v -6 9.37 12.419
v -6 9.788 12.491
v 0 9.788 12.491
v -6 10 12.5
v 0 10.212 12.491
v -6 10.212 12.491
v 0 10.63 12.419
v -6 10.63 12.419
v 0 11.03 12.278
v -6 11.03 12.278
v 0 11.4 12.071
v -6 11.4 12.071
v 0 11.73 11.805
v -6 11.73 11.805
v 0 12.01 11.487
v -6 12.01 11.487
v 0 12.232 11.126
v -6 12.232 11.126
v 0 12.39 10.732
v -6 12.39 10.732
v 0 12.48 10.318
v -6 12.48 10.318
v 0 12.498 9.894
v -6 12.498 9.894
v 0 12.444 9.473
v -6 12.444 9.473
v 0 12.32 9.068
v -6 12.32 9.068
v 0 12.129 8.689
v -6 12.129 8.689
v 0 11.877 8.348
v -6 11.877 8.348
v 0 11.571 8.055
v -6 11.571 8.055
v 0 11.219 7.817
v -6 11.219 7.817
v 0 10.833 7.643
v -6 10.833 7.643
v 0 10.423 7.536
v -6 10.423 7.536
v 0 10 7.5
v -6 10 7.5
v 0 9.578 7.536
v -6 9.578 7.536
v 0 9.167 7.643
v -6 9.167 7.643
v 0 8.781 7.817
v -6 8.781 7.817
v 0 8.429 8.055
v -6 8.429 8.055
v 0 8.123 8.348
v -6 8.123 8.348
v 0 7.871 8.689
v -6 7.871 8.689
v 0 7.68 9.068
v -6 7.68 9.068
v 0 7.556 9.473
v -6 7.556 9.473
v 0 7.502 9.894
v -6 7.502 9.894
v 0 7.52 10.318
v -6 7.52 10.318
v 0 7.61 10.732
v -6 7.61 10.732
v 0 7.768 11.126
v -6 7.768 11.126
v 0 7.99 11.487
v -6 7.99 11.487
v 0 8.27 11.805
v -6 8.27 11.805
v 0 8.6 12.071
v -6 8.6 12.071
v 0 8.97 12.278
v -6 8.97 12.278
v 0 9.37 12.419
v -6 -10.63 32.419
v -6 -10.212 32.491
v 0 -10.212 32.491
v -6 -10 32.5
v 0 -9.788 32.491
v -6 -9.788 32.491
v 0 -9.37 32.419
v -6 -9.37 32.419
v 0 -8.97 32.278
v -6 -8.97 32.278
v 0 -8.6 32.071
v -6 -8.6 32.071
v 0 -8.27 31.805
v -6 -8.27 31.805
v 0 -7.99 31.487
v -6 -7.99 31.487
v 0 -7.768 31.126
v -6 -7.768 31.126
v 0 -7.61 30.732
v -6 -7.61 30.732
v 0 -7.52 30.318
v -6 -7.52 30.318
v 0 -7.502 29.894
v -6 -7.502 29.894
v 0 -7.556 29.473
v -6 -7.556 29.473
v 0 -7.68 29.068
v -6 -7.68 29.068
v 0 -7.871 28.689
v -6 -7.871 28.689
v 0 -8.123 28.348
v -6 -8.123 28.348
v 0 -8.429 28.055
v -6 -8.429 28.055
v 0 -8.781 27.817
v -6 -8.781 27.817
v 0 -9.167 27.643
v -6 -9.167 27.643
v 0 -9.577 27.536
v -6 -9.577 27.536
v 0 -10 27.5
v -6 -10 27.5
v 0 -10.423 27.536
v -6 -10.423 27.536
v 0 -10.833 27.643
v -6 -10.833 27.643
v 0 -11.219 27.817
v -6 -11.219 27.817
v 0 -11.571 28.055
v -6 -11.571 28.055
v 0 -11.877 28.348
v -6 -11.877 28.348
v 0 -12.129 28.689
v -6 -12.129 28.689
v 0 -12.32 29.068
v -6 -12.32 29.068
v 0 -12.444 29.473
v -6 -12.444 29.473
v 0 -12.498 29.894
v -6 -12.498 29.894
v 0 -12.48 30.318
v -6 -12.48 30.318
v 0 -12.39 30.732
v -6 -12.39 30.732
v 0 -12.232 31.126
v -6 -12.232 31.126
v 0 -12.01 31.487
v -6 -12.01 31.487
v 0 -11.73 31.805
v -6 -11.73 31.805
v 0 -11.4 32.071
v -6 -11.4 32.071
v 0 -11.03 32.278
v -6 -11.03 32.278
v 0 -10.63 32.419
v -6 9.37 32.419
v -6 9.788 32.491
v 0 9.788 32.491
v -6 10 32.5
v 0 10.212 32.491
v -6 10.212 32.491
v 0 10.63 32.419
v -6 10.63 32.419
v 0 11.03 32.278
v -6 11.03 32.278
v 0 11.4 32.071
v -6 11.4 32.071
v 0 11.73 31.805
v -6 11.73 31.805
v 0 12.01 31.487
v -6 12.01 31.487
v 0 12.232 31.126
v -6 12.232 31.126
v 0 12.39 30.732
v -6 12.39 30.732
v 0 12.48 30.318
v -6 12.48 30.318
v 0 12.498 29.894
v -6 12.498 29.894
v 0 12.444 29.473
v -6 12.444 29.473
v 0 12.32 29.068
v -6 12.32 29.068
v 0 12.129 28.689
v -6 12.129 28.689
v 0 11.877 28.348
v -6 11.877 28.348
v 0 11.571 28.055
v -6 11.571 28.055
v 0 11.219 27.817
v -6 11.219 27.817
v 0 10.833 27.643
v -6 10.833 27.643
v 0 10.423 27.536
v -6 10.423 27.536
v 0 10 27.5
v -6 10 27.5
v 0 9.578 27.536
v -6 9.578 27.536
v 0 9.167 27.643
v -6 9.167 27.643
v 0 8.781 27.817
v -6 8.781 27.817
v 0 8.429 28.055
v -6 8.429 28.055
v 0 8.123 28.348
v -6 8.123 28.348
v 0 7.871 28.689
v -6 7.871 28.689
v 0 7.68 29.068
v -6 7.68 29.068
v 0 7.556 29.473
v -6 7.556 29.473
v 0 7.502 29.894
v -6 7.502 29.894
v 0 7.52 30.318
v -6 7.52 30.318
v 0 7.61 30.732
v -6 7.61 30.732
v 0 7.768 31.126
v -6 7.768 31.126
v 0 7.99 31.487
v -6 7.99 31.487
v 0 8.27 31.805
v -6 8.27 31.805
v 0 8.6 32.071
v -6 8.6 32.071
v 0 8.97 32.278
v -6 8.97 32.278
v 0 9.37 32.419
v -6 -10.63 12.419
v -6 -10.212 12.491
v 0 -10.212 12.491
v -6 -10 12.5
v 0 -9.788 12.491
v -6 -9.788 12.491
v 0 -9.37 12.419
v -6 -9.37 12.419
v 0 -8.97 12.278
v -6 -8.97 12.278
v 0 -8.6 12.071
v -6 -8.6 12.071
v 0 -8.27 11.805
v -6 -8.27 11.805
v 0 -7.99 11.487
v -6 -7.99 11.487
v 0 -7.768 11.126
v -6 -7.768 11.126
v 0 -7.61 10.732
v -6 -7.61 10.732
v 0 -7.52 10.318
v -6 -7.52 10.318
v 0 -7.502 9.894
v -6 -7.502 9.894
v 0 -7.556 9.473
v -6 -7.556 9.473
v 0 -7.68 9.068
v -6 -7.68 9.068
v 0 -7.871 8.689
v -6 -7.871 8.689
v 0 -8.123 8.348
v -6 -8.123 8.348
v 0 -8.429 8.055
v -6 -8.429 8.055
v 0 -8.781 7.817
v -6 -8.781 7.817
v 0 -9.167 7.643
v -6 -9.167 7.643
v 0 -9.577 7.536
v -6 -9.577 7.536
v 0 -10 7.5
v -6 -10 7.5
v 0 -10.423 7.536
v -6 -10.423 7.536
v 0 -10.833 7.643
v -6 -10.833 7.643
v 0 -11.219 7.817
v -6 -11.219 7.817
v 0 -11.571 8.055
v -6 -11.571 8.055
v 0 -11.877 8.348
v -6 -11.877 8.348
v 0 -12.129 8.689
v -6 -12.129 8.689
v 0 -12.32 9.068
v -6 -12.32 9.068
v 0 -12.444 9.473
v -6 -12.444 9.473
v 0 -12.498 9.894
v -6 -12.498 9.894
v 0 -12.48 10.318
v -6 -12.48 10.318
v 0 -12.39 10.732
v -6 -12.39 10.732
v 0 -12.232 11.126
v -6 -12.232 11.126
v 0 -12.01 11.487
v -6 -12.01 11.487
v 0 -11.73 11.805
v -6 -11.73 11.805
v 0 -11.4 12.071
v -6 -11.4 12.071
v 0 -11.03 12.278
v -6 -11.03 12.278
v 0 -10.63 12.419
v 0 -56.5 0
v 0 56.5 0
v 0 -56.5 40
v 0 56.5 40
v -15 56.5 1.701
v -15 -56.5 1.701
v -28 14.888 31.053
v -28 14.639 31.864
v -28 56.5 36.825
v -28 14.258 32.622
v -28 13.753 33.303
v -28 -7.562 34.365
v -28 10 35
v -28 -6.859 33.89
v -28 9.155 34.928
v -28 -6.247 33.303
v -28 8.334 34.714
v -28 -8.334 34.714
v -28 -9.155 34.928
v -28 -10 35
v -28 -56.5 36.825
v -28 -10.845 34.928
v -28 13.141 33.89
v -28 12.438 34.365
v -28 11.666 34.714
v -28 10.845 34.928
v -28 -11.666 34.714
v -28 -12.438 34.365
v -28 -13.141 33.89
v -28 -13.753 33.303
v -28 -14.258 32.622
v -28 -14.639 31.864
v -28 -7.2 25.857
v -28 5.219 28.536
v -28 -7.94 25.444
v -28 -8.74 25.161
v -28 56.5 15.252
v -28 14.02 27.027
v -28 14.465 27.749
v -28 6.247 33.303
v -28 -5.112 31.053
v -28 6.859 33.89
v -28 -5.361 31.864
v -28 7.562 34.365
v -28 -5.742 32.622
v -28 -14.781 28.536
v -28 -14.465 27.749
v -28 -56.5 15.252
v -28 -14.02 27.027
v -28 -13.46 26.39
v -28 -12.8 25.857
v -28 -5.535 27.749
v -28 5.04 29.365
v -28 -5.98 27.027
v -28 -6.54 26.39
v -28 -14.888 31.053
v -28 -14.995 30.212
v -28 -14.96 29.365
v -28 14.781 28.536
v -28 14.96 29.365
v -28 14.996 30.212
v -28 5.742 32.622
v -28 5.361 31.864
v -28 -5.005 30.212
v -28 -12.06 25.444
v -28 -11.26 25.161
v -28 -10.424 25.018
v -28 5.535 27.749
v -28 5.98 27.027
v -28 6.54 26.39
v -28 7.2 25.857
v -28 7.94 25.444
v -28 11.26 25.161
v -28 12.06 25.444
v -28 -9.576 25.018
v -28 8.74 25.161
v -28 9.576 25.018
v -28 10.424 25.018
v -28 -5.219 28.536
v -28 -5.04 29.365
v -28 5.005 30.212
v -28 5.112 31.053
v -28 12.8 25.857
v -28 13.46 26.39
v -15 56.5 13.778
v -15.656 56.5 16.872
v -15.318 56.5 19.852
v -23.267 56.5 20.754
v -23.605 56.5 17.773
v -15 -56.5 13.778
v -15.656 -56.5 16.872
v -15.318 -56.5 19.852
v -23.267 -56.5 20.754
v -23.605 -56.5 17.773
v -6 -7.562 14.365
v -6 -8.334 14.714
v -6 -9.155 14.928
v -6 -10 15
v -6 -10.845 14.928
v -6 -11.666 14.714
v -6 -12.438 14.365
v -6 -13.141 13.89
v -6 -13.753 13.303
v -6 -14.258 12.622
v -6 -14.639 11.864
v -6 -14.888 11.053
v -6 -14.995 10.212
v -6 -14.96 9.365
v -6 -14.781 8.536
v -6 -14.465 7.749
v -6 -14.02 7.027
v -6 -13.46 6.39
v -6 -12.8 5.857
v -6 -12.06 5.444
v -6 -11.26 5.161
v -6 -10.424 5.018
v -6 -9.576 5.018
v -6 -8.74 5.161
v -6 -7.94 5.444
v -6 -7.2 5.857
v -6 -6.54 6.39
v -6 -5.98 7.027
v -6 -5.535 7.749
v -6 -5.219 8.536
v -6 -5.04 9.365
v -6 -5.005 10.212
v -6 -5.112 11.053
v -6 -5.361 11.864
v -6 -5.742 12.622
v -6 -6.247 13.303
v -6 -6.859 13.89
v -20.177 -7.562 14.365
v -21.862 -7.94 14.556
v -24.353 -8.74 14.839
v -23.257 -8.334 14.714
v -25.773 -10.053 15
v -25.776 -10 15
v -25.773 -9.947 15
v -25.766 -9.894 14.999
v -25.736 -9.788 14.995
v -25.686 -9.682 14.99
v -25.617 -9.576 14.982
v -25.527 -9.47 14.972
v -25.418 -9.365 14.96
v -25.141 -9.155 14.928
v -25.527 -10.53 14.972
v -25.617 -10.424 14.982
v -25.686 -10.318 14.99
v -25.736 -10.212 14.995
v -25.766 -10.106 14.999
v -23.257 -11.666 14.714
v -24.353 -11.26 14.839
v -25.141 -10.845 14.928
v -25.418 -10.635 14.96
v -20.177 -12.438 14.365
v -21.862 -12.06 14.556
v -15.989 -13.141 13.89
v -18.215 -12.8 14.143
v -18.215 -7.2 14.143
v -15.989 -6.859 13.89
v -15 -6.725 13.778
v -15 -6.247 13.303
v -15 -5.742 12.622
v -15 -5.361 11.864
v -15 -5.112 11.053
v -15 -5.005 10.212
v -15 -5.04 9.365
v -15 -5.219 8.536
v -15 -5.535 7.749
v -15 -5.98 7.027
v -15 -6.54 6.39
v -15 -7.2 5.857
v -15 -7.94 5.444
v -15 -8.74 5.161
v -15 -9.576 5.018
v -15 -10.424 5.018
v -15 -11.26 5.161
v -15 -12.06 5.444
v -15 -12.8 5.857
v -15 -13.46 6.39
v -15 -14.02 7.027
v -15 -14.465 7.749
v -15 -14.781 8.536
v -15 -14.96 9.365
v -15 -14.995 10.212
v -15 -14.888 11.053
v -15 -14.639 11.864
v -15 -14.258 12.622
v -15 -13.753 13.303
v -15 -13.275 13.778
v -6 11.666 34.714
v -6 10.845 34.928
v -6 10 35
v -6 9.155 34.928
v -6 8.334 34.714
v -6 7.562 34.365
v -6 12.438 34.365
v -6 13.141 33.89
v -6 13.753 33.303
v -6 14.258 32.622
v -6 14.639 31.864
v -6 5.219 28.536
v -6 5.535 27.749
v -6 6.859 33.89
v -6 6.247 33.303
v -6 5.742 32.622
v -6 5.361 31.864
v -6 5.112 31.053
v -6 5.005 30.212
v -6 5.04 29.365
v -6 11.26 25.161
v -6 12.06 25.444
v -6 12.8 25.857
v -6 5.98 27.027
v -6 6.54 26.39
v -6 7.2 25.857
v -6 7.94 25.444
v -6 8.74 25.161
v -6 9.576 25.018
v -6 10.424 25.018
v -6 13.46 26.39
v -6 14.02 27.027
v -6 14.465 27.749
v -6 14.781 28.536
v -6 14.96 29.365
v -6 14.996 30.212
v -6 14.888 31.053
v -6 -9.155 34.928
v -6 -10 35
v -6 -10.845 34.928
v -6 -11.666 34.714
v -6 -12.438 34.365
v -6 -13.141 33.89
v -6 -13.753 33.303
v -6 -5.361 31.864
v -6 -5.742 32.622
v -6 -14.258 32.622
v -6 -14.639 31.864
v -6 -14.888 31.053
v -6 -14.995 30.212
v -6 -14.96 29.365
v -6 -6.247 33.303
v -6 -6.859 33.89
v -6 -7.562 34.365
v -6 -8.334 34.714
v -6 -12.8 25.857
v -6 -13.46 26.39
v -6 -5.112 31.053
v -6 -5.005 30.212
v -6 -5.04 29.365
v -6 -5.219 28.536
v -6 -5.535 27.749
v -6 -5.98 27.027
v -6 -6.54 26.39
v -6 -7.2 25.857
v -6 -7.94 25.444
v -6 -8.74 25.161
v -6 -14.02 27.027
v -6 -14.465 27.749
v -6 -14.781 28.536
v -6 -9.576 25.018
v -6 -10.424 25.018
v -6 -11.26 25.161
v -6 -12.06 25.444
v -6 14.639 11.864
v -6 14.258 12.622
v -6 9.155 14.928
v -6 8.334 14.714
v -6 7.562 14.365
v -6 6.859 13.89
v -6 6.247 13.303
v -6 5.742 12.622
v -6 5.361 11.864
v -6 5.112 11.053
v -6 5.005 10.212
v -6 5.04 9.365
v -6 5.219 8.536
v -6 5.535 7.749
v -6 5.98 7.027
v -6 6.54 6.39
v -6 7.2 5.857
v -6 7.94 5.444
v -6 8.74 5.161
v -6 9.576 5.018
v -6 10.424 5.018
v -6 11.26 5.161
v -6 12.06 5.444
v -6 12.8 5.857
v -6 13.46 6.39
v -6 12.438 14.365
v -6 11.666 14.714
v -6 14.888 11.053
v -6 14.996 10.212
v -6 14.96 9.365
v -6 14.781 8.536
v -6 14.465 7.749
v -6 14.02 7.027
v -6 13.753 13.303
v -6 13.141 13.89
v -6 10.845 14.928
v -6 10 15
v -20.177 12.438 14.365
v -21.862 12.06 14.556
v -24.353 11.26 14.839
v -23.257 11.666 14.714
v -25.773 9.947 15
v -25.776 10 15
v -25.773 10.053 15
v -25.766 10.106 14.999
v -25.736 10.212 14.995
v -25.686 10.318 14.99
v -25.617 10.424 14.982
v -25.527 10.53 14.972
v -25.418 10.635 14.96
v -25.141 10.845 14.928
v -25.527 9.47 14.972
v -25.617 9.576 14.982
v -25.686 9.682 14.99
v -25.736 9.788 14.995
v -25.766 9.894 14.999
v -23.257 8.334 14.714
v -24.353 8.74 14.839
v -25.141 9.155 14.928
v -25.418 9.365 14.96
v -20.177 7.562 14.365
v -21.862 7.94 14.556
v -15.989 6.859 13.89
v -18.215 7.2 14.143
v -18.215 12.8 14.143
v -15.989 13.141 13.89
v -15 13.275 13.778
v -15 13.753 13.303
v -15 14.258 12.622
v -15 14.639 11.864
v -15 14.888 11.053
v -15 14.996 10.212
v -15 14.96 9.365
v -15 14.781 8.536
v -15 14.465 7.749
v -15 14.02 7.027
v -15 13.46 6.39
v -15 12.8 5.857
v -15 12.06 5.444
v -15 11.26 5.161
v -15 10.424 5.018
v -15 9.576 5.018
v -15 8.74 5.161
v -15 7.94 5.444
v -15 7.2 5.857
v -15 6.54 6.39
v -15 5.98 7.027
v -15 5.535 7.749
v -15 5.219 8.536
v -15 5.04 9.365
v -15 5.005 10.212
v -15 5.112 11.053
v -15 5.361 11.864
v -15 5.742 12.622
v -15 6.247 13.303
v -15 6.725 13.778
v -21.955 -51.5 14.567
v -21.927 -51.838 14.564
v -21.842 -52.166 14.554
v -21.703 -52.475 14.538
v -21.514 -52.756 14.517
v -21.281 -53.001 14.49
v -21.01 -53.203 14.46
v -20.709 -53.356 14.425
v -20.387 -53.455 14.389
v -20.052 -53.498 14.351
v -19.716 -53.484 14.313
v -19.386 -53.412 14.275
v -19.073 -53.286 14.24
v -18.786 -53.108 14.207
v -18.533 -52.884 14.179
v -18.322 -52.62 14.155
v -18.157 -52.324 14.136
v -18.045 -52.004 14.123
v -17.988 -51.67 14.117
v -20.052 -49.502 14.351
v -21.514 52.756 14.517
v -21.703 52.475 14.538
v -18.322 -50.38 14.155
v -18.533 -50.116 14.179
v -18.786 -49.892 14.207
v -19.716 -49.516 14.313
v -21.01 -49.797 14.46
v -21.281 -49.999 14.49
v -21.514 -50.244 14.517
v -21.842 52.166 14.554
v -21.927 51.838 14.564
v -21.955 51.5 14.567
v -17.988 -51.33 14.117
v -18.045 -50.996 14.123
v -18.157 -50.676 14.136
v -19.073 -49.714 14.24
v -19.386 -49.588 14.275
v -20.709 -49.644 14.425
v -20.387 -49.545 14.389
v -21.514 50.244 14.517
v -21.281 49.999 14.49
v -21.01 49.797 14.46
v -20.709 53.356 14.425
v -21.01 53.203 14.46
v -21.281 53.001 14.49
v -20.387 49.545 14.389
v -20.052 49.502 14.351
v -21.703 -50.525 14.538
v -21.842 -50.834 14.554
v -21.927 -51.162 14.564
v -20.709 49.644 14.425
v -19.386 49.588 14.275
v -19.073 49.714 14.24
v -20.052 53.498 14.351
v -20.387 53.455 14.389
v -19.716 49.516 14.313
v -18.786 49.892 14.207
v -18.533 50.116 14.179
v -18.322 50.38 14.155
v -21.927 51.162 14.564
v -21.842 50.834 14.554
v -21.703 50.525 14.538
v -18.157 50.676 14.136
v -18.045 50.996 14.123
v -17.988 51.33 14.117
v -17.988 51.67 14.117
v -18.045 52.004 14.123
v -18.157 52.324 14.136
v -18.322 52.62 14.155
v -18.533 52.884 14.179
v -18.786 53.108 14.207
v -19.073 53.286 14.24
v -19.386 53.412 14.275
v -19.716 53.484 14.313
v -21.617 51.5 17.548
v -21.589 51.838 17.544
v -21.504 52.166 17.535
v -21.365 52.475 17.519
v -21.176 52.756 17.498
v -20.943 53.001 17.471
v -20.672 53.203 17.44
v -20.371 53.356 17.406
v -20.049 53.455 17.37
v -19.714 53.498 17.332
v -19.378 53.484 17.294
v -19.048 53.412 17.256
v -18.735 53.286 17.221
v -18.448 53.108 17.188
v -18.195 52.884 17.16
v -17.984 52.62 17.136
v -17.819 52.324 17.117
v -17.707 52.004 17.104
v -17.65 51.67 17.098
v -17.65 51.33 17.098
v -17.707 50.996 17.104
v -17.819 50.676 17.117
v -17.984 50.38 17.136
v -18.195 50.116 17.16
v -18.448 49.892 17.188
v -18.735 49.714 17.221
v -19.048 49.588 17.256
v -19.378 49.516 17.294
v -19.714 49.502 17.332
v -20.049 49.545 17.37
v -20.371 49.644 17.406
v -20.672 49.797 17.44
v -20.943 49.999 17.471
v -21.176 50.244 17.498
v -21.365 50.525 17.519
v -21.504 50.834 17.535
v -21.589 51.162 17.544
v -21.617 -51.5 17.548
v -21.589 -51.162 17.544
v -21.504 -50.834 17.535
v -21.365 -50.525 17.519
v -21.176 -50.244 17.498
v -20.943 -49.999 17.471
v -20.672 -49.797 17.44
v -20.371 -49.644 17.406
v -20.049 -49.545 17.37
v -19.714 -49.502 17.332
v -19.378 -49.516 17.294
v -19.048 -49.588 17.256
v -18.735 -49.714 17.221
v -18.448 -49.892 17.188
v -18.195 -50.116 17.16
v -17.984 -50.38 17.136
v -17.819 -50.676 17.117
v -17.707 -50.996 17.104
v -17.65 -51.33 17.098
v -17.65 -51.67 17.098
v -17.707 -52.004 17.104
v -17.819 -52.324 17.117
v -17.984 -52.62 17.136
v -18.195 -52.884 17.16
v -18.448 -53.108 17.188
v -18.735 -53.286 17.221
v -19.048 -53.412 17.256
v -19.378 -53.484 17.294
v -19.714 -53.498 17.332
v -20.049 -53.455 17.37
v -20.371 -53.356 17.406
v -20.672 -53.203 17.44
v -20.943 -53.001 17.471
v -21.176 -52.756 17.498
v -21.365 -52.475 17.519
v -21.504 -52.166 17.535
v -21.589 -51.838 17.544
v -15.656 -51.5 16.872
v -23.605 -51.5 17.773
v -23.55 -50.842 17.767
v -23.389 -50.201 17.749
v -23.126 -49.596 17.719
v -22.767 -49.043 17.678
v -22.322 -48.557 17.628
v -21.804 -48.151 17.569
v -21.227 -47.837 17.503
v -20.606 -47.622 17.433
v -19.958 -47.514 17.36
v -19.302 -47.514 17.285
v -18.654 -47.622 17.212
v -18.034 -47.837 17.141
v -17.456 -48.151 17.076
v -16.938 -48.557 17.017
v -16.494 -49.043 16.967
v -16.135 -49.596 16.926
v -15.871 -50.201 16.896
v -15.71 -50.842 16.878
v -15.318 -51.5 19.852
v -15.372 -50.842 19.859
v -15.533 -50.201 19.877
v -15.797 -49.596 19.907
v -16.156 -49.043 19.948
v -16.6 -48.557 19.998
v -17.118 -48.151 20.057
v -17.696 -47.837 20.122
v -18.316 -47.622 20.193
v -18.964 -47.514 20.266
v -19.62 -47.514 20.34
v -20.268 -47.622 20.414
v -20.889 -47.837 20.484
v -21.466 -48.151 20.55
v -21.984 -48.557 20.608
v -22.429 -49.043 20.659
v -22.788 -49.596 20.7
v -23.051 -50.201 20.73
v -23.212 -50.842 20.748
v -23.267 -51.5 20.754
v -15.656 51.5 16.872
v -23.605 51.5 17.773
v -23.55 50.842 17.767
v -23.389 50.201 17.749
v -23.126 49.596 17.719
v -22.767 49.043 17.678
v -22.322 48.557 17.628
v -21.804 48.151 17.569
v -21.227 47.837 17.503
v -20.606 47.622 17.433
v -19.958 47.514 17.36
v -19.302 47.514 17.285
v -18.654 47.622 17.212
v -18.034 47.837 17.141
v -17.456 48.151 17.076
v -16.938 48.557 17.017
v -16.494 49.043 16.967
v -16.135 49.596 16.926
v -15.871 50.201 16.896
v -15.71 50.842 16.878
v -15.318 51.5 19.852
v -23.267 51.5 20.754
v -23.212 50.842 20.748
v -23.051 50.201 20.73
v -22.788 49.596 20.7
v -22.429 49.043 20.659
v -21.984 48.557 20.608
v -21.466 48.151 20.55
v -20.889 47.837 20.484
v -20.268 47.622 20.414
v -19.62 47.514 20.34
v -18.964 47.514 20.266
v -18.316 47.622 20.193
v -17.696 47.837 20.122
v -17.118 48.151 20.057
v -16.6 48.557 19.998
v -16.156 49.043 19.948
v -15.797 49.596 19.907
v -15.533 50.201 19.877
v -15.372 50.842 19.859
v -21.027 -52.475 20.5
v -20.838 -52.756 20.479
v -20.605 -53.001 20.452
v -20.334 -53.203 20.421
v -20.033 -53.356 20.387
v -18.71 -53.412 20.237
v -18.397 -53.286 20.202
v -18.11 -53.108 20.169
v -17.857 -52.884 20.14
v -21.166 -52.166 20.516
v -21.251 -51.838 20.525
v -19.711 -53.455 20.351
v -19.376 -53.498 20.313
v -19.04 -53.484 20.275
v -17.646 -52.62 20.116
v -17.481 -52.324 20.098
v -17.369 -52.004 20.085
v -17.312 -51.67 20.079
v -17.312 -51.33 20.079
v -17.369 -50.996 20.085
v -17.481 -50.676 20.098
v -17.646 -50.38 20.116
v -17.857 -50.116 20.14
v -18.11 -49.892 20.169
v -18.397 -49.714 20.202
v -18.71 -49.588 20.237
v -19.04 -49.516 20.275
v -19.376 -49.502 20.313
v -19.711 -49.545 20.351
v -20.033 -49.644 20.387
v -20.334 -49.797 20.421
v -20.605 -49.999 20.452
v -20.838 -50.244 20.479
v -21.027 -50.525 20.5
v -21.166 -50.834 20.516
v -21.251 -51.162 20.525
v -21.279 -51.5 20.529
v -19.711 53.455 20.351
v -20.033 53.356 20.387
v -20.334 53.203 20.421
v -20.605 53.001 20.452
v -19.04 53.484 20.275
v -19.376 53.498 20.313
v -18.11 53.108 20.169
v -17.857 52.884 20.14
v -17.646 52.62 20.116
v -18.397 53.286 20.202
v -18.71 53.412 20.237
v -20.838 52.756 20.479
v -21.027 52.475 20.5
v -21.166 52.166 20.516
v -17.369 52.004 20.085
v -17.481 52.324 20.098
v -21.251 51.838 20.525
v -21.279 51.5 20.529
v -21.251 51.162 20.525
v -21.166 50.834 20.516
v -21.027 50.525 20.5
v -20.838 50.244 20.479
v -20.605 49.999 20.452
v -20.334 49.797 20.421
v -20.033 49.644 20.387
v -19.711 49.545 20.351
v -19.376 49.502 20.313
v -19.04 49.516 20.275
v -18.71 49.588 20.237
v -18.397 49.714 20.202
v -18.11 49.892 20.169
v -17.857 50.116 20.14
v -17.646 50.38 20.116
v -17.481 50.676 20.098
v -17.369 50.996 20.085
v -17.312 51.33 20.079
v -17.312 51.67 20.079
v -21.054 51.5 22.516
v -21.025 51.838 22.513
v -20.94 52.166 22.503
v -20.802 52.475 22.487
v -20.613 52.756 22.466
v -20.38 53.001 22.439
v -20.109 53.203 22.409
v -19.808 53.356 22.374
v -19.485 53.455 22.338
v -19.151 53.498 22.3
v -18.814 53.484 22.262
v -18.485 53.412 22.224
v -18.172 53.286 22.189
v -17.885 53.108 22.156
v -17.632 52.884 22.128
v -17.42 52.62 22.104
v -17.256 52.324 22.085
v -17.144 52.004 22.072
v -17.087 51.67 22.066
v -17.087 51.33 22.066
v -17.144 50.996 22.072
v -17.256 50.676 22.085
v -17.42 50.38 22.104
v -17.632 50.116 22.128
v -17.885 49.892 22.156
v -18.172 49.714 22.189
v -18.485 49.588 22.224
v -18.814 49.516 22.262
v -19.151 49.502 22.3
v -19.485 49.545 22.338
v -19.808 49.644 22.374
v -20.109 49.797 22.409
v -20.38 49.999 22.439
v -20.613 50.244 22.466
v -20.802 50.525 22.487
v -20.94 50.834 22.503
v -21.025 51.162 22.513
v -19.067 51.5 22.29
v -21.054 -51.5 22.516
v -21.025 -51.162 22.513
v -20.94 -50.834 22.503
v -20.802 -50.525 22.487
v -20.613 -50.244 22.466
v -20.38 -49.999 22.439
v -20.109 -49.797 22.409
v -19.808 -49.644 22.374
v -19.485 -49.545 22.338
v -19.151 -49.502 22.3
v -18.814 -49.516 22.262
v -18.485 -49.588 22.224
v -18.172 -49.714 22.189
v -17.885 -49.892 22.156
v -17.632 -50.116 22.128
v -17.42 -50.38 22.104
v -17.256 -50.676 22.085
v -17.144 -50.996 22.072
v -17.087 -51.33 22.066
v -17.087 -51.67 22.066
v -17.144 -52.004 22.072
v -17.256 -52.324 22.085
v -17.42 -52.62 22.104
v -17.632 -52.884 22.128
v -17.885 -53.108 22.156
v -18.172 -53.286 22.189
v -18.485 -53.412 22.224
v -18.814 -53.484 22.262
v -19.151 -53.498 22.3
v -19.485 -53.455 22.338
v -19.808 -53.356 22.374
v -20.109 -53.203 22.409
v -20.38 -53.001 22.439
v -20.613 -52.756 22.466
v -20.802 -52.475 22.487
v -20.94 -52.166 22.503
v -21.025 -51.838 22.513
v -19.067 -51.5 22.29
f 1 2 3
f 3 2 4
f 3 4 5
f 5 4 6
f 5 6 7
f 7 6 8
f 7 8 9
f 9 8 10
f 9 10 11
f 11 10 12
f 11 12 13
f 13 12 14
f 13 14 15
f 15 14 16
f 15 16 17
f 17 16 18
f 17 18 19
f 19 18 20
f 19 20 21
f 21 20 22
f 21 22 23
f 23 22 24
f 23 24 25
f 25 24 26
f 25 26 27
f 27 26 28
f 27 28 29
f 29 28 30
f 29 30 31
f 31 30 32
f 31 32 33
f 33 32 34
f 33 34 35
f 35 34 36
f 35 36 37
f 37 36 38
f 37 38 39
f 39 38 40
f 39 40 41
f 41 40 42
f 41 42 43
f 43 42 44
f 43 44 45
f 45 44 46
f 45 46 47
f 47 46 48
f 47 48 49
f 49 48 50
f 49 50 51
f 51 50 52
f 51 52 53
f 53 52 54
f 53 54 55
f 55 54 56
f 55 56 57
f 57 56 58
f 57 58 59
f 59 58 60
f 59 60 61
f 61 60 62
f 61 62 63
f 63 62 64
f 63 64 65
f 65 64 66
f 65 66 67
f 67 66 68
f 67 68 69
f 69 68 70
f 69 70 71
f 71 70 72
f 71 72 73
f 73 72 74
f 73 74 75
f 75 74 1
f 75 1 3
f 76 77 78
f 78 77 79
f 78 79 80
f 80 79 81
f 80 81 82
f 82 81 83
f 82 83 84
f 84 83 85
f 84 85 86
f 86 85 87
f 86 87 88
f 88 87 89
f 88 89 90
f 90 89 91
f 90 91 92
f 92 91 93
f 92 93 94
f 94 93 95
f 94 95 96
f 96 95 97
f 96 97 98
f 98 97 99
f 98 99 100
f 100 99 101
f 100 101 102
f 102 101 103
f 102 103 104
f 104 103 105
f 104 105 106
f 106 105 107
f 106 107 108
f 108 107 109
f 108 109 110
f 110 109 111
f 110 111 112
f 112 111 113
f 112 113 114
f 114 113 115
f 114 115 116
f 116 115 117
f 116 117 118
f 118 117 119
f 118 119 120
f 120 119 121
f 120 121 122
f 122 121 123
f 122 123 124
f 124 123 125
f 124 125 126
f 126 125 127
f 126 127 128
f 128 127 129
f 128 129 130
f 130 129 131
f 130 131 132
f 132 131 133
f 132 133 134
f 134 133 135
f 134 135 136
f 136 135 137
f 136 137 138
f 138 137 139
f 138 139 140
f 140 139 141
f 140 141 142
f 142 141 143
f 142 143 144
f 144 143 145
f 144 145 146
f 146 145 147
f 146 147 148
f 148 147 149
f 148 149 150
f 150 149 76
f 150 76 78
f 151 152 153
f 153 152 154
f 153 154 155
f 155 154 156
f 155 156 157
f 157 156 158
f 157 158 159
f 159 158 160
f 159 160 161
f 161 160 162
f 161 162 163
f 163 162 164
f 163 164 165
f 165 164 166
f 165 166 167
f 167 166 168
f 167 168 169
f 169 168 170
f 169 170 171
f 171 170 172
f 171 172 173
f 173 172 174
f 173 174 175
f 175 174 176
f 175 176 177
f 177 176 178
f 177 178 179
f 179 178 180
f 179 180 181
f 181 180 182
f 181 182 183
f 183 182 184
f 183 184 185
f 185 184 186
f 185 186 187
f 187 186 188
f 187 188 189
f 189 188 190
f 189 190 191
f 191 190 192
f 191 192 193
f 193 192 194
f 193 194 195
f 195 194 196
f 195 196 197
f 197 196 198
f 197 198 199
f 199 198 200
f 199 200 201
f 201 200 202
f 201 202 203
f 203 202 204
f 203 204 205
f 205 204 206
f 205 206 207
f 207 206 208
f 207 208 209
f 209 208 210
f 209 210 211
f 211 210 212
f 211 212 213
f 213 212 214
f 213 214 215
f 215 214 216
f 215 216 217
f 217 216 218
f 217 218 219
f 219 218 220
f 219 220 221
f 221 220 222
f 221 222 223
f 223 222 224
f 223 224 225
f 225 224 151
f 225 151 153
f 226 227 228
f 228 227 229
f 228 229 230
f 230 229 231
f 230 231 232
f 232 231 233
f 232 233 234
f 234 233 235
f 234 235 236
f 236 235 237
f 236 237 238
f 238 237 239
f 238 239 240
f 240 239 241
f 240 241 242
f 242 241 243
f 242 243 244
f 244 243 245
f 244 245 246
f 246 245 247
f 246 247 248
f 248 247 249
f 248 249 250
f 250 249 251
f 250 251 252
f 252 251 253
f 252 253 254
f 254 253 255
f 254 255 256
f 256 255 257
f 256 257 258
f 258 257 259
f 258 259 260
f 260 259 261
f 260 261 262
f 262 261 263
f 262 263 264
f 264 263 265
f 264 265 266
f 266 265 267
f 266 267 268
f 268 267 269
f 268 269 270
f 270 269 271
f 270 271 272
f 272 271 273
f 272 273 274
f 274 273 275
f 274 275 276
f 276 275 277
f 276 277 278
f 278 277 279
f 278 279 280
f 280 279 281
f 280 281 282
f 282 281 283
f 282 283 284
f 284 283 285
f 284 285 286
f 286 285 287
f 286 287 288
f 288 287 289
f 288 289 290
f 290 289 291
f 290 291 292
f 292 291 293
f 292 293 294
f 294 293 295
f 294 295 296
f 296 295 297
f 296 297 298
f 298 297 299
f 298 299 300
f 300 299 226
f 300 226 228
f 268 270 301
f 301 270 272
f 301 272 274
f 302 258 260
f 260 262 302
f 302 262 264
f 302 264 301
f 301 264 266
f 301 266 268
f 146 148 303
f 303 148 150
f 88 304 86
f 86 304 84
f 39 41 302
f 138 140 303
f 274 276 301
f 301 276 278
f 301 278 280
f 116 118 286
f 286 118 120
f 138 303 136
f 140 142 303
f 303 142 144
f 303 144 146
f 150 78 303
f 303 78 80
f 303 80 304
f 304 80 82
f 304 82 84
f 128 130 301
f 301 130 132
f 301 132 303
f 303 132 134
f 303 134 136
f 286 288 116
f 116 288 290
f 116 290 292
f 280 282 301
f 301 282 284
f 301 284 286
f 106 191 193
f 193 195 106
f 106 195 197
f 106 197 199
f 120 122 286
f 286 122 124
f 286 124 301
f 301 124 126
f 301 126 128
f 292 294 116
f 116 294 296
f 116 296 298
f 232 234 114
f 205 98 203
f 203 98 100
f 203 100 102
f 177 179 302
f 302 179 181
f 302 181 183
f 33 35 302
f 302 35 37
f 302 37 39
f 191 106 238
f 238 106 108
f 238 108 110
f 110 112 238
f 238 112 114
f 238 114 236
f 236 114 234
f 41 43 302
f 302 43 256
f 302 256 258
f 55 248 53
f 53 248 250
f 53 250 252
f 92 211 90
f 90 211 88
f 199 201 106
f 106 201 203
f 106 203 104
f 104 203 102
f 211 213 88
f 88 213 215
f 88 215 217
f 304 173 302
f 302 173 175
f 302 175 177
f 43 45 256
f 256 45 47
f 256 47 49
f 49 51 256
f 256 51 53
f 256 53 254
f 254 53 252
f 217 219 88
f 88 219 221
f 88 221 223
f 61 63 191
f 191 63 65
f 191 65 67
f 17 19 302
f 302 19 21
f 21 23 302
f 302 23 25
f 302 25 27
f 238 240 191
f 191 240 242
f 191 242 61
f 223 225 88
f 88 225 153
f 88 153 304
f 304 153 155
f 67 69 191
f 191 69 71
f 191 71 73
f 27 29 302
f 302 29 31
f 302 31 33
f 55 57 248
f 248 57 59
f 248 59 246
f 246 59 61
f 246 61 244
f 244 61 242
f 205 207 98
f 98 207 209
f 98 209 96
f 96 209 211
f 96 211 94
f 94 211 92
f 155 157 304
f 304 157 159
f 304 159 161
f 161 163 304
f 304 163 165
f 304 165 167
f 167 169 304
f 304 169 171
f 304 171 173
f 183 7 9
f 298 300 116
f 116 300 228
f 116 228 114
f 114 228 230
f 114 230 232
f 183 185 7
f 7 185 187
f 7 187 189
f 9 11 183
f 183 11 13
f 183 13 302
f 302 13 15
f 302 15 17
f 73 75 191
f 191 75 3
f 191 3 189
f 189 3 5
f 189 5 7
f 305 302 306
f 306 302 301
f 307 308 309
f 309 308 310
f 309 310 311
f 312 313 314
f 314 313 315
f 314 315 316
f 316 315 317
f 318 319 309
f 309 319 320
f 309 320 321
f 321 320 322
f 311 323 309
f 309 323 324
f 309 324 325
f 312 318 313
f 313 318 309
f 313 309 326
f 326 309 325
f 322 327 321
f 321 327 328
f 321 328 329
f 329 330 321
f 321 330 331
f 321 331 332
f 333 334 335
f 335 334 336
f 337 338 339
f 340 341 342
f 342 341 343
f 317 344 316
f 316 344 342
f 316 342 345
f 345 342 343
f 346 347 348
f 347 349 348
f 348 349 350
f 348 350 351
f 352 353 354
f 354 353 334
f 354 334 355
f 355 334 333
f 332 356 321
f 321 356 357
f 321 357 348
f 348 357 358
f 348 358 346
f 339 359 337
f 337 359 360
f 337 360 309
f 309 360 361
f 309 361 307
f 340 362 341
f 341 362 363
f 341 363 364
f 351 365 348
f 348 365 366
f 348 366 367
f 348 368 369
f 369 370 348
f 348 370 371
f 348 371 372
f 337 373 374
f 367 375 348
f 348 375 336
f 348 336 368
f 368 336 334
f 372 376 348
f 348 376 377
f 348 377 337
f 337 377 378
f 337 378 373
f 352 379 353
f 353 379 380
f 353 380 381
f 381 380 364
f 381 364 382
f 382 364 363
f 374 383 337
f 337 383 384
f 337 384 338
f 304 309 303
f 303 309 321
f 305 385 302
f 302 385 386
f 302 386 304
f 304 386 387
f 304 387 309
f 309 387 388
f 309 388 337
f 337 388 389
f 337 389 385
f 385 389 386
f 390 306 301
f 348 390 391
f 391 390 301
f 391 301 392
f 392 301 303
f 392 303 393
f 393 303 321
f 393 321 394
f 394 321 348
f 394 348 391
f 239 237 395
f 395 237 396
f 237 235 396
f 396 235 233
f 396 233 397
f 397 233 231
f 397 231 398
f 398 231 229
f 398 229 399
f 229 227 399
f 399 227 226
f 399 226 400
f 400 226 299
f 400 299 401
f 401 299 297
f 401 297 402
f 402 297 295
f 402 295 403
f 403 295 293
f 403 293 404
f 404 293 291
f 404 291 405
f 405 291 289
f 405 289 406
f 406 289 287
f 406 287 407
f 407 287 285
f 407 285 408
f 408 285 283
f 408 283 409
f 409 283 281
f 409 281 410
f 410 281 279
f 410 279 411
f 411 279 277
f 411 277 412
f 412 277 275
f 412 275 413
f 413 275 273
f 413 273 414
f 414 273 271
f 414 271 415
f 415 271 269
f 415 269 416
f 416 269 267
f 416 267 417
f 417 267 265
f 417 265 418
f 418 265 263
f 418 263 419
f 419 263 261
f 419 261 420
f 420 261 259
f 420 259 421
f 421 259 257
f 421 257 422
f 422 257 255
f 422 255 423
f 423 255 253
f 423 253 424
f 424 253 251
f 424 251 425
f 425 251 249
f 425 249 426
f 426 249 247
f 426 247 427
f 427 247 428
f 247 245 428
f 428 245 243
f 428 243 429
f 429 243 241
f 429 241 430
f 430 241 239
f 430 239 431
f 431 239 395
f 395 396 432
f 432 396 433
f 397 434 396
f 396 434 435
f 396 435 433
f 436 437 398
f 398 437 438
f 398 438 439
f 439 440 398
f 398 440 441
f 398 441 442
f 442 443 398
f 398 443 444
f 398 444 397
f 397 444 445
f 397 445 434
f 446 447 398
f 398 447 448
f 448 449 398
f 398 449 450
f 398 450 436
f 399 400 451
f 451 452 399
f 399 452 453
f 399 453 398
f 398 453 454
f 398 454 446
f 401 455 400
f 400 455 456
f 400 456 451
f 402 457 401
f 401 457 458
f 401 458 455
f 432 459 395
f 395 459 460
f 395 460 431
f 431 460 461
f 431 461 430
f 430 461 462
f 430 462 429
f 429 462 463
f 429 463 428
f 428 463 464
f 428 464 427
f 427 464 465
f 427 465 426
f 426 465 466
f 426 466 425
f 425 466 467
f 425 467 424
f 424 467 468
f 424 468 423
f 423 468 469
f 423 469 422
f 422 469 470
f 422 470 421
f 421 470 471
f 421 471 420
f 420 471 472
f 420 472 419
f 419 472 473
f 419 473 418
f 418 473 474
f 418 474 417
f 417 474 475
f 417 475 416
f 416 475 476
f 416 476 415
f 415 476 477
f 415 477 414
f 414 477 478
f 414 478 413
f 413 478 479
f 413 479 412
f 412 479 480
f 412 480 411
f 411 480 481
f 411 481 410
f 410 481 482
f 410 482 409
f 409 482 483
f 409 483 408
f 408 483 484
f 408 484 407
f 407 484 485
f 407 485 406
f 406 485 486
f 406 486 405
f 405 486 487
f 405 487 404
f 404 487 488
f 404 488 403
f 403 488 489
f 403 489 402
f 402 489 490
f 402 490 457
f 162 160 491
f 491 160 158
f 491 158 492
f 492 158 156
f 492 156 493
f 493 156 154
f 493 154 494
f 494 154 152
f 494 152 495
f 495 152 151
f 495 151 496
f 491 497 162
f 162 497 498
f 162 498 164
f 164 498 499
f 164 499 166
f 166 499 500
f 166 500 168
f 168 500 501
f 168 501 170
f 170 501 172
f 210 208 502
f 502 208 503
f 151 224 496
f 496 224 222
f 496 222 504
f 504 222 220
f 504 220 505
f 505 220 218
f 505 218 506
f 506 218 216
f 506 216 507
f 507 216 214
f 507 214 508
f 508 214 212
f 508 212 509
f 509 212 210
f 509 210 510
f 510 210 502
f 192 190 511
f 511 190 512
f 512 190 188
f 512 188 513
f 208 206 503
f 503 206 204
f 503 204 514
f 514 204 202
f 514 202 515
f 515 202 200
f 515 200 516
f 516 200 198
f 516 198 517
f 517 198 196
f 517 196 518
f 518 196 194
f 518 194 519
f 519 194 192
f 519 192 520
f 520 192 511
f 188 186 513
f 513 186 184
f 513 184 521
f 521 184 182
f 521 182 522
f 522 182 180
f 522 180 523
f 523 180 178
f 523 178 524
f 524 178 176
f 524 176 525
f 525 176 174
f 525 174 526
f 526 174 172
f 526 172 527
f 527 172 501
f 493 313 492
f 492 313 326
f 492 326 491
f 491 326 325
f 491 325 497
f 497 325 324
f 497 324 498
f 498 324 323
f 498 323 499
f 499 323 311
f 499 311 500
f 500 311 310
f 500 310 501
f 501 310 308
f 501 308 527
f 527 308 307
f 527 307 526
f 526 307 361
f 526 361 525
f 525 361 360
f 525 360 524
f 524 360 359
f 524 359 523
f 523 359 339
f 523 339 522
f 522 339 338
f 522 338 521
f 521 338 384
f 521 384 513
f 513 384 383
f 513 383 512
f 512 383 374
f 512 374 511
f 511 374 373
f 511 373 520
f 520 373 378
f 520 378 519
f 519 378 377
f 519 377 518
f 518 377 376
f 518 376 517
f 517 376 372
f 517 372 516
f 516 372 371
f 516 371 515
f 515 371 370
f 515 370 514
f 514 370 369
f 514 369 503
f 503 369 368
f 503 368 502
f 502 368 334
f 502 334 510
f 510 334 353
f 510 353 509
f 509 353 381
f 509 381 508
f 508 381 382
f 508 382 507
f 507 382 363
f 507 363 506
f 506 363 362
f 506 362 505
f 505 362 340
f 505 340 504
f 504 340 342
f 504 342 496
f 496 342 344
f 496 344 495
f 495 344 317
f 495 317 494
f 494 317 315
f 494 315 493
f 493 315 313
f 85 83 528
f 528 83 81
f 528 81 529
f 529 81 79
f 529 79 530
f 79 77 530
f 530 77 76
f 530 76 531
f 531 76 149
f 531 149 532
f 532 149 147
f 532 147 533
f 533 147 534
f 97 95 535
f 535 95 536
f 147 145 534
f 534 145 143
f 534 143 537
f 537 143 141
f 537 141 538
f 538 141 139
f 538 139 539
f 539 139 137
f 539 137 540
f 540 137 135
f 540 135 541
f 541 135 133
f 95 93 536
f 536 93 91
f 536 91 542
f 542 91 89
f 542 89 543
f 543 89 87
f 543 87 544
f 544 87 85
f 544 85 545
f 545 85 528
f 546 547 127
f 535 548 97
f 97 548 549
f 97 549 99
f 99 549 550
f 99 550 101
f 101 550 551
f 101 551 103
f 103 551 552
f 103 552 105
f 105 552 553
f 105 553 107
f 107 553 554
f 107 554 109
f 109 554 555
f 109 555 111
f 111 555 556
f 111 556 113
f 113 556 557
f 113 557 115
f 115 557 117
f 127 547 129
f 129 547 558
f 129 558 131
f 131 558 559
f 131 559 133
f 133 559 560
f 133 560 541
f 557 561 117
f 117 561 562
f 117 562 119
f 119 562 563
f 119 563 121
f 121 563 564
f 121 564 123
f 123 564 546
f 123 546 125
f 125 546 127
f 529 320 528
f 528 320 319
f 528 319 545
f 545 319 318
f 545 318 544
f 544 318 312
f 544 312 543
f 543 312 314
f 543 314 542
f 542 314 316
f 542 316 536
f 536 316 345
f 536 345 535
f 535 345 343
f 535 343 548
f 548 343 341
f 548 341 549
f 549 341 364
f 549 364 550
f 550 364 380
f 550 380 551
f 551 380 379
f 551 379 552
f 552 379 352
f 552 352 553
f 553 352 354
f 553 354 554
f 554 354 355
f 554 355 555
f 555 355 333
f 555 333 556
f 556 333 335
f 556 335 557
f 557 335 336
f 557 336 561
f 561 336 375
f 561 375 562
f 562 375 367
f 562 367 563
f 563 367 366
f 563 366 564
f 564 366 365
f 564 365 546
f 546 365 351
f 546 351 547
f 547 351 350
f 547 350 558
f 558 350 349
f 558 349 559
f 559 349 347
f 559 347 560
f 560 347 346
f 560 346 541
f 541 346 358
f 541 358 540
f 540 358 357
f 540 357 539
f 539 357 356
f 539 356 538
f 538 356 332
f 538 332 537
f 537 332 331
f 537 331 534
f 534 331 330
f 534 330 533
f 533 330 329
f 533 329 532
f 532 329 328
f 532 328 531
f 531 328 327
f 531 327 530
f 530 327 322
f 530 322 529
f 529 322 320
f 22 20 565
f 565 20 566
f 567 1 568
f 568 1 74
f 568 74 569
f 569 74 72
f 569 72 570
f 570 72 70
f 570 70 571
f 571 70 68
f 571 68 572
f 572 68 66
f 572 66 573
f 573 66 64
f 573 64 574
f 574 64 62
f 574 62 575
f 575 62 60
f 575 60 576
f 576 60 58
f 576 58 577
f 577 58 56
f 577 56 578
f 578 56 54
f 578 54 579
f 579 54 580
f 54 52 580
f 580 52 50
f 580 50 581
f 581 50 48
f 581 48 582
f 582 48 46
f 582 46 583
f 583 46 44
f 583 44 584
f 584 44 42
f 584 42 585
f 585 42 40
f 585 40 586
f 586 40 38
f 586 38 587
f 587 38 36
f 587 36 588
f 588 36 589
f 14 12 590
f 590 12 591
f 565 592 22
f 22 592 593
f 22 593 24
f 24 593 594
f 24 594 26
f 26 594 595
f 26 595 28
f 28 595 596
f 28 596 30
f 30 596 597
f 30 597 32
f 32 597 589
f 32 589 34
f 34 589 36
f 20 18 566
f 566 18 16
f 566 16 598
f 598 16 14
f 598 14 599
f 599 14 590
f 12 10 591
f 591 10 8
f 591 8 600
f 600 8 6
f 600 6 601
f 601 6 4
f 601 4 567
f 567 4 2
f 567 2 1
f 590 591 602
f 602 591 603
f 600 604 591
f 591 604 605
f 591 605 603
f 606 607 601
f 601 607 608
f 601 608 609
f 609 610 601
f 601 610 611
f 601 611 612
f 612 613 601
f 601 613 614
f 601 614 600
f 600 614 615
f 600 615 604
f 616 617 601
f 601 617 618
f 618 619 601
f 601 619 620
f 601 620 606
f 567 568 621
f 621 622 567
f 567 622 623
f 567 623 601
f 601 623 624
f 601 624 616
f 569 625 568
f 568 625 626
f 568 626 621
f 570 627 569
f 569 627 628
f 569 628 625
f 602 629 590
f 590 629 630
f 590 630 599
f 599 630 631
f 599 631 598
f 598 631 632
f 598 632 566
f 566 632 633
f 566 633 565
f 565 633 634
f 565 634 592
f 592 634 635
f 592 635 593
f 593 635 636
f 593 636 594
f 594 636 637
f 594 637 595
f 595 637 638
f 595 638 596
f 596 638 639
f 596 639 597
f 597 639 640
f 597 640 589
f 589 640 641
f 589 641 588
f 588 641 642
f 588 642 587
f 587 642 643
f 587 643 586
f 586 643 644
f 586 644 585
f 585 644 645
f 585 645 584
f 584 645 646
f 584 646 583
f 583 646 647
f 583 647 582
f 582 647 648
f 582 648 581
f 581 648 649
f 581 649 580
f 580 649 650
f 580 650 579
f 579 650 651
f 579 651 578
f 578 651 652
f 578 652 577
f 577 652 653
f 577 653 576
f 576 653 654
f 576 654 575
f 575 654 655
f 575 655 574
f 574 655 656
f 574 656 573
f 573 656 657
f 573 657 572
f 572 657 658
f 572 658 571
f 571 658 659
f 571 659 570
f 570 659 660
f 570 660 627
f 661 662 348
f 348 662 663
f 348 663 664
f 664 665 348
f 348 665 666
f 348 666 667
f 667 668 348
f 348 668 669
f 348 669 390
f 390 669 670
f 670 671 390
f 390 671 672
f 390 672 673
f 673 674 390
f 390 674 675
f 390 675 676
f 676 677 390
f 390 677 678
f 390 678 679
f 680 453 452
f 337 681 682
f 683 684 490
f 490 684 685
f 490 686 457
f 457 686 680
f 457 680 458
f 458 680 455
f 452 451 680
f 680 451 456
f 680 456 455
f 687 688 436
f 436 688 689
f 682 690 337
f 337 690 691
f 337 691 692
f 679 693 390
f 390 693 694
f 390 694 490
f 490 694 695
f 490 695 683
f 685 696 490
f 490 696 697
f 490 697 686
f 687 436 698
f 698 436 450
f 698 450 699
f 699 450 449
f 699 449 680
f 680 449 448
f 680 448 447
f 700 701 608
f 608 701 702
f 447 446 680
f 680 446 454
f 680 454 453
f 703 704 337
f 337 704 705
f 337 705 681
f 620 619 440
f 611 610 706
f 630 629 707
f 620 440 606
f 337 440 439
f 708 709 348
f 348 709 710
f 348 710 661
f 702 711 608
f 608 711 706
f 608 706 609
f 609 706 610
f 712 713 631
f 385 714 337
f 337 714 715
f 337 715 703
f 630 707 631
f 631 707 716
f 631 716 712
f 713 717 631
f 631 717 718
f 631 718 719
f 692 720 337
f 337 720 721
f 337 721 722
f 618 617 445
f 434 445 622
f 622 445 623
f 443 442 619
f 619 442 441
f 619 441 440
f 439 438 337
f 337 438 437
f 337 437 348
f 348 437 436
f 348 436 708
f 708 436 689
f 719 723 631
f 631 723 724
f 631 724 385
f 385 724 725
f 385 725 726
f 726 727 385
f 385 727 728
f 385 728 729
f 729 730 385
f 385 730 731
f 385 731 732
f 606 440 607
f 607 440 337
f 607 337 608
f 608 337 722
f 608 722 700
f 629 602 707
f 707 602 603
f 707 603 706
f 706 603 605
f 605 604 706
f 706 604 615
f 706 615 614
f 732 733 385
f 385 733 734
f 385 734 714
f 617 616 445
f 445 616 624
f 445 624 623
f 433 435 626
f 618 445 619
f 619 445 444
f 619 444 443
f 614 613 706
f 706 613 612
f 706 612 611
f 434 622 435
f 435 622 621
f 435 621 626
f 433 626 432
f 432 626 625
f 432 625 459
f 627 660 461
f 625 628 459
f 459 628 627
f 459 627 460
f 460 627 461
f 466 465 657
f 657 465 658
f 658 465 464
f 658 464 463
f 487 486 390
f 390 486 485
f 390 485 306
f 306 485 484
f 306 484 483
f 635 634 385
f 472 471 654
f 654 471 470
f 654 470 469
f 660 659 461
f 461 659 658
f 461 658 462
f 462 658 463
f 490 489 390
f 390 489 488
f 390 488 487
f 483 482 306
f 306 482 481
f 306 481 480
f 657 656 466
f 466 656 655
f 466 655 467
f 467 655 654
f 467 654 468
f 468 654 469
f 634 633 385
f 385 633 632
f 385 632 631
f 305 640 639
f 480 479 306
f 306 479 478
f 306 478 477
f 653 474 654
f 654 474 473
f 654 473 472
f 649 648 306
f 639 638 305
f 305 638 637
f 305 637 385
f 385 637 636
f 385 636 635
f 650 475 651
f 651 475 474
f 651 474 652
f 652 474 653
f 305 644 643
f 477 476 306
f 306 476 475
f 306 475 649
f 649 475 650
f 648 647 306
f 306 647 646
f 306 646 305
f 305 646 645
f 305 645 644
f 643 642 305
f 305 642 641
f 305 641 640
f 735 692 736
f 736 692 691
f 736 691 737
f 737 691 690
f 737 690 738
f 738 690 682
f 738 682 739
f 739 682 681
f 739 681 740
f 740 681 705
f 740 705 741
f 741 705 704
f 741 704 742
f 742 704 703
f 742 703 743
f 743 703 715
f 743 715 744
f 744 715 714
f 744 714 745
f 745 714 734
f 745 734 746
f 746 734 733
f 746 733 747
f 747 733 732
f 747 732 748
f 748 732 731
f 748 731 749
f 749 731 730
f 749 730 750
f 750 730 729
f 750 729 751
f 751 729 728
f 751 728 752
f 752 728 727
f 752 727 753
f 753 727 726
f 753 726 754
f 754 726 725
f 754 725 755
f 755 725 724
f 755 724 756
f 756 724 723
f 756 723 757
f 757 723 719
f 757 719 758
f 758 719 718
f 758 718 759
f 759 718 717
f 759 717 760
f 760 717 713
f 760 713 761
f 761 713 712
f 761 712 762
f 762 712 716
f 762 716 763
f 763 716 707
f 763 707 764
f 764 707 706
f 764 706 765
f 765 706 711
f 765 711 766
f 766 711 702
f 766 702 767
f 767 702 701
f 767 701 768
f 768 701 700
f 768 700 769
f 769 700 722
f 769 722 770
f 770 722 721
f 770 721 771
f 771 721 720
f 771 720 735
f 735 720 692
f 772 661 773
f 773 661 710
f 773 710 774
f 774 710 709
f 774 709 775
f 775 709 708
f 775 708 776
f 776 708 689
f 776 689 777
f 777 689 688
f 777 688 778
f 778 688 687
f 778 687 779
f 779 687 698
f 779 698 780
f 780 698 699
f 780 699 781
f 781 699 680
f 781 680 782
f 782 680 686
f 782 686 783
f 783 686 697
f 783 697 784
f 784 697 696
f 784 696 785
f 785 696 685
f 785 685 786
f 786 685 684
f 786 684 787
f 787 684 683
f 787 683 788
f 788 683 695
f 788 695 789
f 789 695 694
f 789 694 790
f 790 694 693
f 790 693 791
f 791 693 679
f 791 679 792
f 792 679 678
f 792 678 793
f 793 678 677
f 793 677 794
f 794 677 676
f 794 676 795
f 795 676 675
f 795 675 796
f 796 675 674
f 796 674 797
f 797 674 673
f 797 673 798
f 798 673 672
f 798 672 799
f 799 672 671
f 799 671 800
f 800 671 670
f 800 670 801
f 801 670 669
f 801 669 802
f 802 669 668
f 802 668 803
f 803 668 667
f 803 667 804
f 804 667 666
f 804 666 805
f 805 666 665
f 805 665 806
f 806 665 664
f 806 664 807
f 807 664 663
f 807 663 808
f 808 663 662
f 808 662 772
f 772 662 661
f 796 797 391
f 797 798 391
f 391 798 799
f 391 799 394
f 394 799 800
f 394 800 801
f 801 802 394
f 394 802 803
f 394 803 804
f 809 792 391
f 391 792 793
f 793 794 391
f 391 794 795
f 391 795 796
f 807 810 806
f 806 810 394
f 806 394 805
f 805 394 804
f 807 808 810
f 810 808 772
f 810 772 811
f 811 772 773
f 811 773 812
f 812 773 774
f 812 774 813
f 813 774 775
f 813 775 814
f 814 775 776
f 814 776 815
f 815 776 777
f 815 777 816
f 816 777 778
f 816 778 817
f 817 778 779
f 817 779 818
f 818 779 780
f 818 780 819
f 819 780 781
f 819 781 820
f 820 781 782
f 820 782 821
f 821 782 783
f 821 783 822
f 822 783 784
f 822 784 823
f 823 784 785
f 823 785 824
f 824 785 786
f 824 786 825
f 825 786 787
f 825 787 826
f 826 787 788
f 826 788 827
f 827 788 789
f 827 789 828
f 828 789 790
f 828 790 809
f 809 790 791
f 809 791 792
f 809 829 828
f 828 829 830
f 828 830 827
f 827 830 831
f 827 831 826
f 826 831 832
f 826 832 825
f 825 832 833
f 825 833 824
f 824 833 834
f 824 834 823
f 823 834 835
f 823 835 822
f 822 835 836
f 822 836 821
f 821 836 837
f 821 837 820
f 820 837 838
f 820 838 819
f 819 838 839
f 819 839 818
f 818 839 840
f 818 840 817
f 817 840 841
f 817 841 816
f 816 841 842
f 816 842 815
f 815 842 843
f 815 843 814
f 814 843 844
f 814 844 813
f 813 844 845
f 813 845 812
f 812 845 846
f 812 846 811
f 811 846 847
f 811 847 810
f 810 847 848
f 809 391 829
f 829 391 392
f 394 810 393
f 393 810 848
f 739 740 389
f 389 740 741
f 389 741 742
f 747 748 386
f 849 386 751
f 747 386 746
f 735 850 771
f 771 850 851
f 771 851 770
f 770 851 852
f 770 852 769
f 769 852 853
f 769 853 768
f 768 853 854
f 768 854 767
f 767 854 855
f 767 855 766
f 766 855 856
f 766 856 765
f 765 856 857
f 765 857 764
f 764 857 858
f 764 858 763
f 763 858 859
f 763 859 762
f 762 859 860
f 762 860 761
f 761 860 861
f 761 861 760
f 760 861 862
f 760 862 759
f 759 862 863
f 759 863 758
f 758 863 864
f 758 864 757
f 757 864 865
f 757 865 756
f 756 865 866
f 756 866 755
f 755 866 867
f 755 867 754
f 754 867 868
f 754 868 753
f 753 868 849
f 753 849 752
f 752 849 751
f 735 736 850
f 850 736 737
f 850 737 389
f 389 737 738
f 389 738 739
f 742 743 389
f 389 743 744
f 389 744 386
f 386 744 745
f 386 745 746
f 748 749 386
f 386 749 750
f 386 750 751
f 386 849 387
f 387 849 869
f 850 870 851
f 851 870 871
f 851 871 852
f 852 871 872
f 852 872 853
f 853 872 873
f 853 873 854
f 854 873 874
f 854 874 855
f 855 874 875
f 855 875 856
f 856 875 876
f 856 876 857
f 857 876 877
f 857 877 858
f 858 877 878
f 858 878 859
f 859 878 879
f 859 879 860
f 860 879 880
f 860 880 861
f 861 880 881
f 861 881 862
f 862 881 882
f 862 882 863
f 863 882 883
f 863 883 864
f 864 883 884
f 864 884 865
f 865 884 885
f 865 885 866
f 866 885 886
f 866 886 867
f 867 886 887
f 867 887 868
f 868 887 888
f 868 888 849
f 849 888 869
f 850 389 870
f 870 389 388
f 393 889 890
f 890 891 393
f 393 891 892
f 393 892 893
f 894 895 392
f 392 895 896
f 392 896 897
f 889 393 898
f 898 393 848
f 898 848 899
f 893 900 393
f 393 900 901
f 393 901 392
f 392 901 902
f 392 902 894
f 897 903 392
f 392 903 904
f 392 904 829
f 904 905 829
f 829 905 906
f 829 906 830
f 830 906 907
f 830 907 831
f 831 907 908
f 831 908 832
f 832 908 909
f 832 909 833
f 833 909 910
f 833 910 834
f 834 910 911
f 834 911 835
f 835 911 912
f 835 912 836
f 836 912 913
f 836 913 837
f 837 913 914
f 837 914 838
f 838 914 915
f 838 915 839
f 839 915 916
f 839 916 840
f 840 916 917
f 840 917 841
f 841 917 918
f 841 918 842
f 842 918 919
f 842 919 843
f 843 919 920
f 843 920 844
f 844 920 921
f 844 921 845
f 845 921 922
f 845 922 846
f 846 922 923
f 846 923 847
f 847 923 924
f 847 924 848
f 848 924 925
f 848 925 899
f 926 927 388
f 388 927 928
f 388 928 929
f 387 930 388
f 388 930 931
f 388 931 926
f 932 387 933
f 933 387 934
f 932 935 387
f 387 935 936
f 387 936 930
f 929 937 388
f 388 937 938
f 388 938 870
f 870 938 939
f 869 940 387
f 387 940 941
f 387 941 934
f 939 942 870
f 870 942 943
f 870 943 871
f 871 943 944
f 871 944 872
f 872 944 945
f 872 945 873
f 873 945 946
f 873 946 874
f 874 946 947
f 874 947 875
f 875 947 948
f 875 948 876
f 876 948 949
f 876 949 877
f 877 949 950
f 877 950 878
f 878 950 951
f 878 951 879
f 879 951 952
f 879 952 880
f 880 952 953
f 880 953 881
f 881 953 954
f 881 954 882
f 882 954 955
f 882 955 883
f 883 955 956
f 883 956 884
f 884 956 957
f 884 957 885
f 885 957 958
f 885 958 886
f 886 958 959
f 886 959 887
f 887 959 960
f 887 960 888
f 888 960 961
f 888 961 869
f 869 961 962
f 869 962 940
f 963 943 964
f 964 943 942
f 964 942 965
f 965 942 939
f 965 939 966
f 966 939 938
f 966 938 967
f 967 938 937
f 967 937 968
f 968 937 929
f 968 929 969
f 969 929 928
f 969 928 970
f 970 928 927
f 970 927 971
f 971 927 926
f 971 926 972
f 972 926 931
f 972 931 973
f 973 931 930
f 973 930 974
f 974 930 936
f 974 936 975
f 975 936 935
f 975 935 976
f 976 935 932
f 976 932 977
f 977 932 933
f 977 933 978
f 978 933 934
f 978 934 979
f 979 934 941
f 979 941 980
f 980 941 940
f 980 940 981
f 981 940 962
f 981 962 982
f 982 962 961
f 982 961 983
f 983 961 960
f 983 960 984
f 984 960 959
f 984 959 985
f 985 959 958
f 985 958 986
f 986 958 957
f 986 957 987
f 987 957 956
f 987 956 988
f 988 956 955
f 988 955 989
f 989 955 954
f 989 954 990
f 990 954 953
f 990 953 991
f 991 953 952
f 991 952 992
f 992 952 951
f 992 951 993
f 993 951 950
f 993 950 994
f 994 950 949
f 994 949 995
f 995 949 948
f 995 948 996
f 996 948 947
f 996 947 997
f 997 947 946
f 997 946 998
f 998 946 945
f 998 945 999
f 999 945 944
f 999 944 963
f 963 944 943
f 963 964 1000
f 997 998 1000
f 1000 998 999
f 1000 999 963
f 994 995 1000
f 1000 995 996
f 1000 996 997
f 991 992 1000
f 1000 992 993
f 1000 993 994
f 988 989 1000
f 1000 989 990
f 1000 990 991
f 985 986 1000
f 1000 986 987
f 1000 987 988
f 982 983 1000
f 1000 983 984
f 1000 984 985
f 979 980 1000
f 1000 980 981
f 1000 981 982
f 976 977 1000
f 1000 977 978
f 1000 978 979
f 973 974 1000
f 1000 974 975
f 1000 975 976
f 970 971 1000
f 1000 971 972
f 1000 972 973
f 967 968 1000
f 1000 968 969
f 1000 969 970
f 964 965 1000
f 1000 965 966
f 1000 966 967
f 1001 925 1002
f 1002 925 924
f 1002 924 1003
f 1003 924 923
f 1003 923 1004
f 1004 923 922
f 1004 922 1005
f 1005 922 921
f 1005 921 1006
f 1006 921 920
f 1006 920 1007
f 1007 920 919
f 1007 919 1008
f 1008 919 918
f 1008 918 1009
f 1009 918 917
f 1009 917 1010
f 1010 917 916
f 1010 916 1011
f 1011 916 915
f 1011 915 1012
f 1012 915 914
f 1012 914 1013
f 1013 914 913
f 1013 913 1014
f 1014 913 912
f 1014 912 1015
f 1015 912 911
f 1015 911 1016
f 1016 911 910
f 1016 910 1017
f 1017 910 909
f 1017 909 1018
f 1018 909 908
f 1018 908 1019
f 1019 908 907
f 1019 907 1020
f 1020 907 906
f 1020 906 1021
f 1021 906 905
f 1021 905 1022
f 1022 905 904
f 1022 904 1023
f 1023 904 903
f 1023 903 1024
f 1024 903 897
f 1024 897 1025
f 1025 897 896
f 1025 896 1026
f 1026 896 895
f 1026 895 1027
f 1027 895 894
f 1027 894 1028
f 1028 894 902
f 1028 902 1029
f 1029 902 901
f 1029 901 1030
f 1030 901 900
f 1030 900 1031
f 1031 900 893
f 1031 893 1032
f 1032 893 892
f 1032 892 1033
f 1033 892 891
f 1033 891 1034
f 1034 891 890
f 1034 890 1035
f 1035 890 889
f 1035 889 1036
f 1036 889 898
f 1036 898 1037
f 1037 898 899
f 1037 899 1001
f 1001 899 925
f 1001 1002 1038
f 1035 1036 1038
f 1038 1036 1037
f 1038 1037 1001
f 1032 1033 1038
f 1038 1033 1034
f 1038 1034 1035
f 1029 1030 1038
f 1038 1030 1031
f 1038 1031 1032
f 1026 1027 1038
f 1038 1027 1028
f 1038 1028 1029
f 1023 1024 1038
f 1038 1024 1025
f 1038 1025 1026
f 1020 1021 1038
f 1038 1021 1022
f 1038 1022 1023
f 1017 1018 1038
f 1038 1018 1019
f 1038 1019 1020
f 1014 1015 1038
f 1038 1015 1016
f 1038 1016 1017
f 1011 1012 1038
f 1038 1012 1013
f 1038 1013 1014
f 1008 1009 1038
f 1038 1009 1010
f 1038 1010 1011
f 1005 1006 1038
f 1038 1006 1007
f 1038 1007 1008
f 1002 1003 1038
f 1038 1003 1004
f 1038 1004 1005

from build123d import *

# Parameters (mm, degrees)
BOSS_EXTRUDE1_DEPTH = 56.5
SKETCH2_R           = 2.5
CUT_EXTRUDE1_DEPTH  = 20
SKETCH5_R           = 5
CUT_EXTRUDE4_DEPTH  = 22
CUT_EXTRUDE5_DEPTH  = 126
SKETCH7_R           = 2
CUT_EXTRUDE6_DEPTH  = 6
CUT_EXTRUDE7_DEPTH  = 3
SKETCH10_R          = 2
CUT_EXTRUDE8_DEPTH  = 2


with BuildPart() as part:
    # Sketch1 → Boss-Extrude1 (new body, symmetric)
    with BuildSketch(Plane(origin=(0, 0, 0), x_dir=(1, 0, 0), z_dir=(0, 1, 0))):
        Polygon((0, 0), (-28, -3.175346835), (-28, -36.824653165), (0, -40), align=None)
    extrude(amount=BOSS_EXTRUDE1_DEPTH, both=True)

    # Sketch2 → Cut-Extrude1 (cut)
    with BuildSketch(Plane(origin=(0, 0, 0), x_dir=(0, 0, -1), z_dir=(1, 0, 0))):
        with Locations((-10, 10)):
            Circle(SKETCH2_R)
        with Locations((-10, -10)):
            Circle(SKETCH2_R)
        with Locations((-30, 10)):
            Circle(SKETCH2_R)
        with Locations((-30, -10)):
            Circle(SKETCH2_R)
    extrude(amount=-CUT_EXTRUDE1_DEPTH, mode=Mode.SUBTRACT)

    # Sketch5 → Cut-Extrude4 (cut)
    with BuildSketch(Plane.ZY.offset(28)):
        with Locations((30, 10)):
            Circle(SKETCH5_R)
        with Locations((30, -10)):
            Circle(SKETCH5_R)
        with Locations((10, -10)):
            Circle(SKETCH5_R)
        with Locations((10, 10)):
            Circle(SKETCH5_R)
    extrude(amount=-CUT_EXTRUDE4_DEPTH, mode=Mode.SUBTRACT)

    # Sketch6 → Cut-Extrude5 (cut)
    with BuildSketch(Plane.XZ.offset(56.5)):
        Polygon((-15, 1.701078662), (-15, 13.777996642), (-28, 15.252264816), (-28, 3.175346835), align=None)
    extrude(amount=-CUT_EXTRUDE5_DEPTH, mode=Mode.SUBTRACT)

    # Sketch7 → Cut-Extrude6 (cut)
    with BuildSketch(Plane(origin=(1.352195583, 0, 11.92357191), x_dir=(-0.993630993, 0, 0.112682965), z_dir=(-0.112682965, 0, -0.993630993))):
        with Locations((21.457010405, -51.5)):
            Circle(SKETCH7_R)
        with Locations((21.457010405, 51.5)):
            Circle(SKETCH7_R)
    extrude(amount=-CUT_EXTRUDE6_DEPTH, mode=Mode.SUBTRACT)

    # Sketch9 → Cut-Extrude7 (cut)
    with BuildSketch(Plane(origin=(2.028293375, 0, 17.885357866), x_dir=(-0.993630993, 0, 0.112682965), z_dir=(-0.112682965, 0, -0.993630993))):
        with BuildLine():
            Line((17.457010405, -51.5), (17.457010405, -56.5))
            Line((17.457010405, -56.5), (25.457010405, -56.5))
            Line((25.457010405, -56.5), (25.457010405, -51.5))
            ThreePointArc((25.457010405, -51.5), (21.457010405, -47.5), (17.457010405, -51.5))
        make_face()
        with BuildLine():
            Line((17.457010405, 56.5), (17.457010405, 51.5))
            ThreePointArc((17.457010405, 51.5), (21.457010405, 47.5), (25.457010405, 51.5))
            Line((25.457010405, 51.5), (25.457010405, 56.5))
            Line((25.457010405, 56.5), (17.457010405, 56.5))
        make_face()
    extrude(amount=CUT_EXTRUDE7_DEPTH, mode=Mode.SUBTRACT)

    # Sketch10 → Cut-Extrude8 (cut)
    with BuildSketch(Plane(origin=(2.028293375, 0, 17.885357866), x_dir=(-0.993630993, 0, 0.112682965), z_dir=(-0.112682965, 0, -0.993630993))):
        with Locations((21.457010405, 51.5)):
            Circle(SKETCH10_R)
        with Locations((21.457010405, -51.5)):
            Circle(SKETCH10_R)
    extrude(amount=-CUT_EXTRUDE8_DEPTH, mode=Mode.SUBTRACT)


solid = part.part
